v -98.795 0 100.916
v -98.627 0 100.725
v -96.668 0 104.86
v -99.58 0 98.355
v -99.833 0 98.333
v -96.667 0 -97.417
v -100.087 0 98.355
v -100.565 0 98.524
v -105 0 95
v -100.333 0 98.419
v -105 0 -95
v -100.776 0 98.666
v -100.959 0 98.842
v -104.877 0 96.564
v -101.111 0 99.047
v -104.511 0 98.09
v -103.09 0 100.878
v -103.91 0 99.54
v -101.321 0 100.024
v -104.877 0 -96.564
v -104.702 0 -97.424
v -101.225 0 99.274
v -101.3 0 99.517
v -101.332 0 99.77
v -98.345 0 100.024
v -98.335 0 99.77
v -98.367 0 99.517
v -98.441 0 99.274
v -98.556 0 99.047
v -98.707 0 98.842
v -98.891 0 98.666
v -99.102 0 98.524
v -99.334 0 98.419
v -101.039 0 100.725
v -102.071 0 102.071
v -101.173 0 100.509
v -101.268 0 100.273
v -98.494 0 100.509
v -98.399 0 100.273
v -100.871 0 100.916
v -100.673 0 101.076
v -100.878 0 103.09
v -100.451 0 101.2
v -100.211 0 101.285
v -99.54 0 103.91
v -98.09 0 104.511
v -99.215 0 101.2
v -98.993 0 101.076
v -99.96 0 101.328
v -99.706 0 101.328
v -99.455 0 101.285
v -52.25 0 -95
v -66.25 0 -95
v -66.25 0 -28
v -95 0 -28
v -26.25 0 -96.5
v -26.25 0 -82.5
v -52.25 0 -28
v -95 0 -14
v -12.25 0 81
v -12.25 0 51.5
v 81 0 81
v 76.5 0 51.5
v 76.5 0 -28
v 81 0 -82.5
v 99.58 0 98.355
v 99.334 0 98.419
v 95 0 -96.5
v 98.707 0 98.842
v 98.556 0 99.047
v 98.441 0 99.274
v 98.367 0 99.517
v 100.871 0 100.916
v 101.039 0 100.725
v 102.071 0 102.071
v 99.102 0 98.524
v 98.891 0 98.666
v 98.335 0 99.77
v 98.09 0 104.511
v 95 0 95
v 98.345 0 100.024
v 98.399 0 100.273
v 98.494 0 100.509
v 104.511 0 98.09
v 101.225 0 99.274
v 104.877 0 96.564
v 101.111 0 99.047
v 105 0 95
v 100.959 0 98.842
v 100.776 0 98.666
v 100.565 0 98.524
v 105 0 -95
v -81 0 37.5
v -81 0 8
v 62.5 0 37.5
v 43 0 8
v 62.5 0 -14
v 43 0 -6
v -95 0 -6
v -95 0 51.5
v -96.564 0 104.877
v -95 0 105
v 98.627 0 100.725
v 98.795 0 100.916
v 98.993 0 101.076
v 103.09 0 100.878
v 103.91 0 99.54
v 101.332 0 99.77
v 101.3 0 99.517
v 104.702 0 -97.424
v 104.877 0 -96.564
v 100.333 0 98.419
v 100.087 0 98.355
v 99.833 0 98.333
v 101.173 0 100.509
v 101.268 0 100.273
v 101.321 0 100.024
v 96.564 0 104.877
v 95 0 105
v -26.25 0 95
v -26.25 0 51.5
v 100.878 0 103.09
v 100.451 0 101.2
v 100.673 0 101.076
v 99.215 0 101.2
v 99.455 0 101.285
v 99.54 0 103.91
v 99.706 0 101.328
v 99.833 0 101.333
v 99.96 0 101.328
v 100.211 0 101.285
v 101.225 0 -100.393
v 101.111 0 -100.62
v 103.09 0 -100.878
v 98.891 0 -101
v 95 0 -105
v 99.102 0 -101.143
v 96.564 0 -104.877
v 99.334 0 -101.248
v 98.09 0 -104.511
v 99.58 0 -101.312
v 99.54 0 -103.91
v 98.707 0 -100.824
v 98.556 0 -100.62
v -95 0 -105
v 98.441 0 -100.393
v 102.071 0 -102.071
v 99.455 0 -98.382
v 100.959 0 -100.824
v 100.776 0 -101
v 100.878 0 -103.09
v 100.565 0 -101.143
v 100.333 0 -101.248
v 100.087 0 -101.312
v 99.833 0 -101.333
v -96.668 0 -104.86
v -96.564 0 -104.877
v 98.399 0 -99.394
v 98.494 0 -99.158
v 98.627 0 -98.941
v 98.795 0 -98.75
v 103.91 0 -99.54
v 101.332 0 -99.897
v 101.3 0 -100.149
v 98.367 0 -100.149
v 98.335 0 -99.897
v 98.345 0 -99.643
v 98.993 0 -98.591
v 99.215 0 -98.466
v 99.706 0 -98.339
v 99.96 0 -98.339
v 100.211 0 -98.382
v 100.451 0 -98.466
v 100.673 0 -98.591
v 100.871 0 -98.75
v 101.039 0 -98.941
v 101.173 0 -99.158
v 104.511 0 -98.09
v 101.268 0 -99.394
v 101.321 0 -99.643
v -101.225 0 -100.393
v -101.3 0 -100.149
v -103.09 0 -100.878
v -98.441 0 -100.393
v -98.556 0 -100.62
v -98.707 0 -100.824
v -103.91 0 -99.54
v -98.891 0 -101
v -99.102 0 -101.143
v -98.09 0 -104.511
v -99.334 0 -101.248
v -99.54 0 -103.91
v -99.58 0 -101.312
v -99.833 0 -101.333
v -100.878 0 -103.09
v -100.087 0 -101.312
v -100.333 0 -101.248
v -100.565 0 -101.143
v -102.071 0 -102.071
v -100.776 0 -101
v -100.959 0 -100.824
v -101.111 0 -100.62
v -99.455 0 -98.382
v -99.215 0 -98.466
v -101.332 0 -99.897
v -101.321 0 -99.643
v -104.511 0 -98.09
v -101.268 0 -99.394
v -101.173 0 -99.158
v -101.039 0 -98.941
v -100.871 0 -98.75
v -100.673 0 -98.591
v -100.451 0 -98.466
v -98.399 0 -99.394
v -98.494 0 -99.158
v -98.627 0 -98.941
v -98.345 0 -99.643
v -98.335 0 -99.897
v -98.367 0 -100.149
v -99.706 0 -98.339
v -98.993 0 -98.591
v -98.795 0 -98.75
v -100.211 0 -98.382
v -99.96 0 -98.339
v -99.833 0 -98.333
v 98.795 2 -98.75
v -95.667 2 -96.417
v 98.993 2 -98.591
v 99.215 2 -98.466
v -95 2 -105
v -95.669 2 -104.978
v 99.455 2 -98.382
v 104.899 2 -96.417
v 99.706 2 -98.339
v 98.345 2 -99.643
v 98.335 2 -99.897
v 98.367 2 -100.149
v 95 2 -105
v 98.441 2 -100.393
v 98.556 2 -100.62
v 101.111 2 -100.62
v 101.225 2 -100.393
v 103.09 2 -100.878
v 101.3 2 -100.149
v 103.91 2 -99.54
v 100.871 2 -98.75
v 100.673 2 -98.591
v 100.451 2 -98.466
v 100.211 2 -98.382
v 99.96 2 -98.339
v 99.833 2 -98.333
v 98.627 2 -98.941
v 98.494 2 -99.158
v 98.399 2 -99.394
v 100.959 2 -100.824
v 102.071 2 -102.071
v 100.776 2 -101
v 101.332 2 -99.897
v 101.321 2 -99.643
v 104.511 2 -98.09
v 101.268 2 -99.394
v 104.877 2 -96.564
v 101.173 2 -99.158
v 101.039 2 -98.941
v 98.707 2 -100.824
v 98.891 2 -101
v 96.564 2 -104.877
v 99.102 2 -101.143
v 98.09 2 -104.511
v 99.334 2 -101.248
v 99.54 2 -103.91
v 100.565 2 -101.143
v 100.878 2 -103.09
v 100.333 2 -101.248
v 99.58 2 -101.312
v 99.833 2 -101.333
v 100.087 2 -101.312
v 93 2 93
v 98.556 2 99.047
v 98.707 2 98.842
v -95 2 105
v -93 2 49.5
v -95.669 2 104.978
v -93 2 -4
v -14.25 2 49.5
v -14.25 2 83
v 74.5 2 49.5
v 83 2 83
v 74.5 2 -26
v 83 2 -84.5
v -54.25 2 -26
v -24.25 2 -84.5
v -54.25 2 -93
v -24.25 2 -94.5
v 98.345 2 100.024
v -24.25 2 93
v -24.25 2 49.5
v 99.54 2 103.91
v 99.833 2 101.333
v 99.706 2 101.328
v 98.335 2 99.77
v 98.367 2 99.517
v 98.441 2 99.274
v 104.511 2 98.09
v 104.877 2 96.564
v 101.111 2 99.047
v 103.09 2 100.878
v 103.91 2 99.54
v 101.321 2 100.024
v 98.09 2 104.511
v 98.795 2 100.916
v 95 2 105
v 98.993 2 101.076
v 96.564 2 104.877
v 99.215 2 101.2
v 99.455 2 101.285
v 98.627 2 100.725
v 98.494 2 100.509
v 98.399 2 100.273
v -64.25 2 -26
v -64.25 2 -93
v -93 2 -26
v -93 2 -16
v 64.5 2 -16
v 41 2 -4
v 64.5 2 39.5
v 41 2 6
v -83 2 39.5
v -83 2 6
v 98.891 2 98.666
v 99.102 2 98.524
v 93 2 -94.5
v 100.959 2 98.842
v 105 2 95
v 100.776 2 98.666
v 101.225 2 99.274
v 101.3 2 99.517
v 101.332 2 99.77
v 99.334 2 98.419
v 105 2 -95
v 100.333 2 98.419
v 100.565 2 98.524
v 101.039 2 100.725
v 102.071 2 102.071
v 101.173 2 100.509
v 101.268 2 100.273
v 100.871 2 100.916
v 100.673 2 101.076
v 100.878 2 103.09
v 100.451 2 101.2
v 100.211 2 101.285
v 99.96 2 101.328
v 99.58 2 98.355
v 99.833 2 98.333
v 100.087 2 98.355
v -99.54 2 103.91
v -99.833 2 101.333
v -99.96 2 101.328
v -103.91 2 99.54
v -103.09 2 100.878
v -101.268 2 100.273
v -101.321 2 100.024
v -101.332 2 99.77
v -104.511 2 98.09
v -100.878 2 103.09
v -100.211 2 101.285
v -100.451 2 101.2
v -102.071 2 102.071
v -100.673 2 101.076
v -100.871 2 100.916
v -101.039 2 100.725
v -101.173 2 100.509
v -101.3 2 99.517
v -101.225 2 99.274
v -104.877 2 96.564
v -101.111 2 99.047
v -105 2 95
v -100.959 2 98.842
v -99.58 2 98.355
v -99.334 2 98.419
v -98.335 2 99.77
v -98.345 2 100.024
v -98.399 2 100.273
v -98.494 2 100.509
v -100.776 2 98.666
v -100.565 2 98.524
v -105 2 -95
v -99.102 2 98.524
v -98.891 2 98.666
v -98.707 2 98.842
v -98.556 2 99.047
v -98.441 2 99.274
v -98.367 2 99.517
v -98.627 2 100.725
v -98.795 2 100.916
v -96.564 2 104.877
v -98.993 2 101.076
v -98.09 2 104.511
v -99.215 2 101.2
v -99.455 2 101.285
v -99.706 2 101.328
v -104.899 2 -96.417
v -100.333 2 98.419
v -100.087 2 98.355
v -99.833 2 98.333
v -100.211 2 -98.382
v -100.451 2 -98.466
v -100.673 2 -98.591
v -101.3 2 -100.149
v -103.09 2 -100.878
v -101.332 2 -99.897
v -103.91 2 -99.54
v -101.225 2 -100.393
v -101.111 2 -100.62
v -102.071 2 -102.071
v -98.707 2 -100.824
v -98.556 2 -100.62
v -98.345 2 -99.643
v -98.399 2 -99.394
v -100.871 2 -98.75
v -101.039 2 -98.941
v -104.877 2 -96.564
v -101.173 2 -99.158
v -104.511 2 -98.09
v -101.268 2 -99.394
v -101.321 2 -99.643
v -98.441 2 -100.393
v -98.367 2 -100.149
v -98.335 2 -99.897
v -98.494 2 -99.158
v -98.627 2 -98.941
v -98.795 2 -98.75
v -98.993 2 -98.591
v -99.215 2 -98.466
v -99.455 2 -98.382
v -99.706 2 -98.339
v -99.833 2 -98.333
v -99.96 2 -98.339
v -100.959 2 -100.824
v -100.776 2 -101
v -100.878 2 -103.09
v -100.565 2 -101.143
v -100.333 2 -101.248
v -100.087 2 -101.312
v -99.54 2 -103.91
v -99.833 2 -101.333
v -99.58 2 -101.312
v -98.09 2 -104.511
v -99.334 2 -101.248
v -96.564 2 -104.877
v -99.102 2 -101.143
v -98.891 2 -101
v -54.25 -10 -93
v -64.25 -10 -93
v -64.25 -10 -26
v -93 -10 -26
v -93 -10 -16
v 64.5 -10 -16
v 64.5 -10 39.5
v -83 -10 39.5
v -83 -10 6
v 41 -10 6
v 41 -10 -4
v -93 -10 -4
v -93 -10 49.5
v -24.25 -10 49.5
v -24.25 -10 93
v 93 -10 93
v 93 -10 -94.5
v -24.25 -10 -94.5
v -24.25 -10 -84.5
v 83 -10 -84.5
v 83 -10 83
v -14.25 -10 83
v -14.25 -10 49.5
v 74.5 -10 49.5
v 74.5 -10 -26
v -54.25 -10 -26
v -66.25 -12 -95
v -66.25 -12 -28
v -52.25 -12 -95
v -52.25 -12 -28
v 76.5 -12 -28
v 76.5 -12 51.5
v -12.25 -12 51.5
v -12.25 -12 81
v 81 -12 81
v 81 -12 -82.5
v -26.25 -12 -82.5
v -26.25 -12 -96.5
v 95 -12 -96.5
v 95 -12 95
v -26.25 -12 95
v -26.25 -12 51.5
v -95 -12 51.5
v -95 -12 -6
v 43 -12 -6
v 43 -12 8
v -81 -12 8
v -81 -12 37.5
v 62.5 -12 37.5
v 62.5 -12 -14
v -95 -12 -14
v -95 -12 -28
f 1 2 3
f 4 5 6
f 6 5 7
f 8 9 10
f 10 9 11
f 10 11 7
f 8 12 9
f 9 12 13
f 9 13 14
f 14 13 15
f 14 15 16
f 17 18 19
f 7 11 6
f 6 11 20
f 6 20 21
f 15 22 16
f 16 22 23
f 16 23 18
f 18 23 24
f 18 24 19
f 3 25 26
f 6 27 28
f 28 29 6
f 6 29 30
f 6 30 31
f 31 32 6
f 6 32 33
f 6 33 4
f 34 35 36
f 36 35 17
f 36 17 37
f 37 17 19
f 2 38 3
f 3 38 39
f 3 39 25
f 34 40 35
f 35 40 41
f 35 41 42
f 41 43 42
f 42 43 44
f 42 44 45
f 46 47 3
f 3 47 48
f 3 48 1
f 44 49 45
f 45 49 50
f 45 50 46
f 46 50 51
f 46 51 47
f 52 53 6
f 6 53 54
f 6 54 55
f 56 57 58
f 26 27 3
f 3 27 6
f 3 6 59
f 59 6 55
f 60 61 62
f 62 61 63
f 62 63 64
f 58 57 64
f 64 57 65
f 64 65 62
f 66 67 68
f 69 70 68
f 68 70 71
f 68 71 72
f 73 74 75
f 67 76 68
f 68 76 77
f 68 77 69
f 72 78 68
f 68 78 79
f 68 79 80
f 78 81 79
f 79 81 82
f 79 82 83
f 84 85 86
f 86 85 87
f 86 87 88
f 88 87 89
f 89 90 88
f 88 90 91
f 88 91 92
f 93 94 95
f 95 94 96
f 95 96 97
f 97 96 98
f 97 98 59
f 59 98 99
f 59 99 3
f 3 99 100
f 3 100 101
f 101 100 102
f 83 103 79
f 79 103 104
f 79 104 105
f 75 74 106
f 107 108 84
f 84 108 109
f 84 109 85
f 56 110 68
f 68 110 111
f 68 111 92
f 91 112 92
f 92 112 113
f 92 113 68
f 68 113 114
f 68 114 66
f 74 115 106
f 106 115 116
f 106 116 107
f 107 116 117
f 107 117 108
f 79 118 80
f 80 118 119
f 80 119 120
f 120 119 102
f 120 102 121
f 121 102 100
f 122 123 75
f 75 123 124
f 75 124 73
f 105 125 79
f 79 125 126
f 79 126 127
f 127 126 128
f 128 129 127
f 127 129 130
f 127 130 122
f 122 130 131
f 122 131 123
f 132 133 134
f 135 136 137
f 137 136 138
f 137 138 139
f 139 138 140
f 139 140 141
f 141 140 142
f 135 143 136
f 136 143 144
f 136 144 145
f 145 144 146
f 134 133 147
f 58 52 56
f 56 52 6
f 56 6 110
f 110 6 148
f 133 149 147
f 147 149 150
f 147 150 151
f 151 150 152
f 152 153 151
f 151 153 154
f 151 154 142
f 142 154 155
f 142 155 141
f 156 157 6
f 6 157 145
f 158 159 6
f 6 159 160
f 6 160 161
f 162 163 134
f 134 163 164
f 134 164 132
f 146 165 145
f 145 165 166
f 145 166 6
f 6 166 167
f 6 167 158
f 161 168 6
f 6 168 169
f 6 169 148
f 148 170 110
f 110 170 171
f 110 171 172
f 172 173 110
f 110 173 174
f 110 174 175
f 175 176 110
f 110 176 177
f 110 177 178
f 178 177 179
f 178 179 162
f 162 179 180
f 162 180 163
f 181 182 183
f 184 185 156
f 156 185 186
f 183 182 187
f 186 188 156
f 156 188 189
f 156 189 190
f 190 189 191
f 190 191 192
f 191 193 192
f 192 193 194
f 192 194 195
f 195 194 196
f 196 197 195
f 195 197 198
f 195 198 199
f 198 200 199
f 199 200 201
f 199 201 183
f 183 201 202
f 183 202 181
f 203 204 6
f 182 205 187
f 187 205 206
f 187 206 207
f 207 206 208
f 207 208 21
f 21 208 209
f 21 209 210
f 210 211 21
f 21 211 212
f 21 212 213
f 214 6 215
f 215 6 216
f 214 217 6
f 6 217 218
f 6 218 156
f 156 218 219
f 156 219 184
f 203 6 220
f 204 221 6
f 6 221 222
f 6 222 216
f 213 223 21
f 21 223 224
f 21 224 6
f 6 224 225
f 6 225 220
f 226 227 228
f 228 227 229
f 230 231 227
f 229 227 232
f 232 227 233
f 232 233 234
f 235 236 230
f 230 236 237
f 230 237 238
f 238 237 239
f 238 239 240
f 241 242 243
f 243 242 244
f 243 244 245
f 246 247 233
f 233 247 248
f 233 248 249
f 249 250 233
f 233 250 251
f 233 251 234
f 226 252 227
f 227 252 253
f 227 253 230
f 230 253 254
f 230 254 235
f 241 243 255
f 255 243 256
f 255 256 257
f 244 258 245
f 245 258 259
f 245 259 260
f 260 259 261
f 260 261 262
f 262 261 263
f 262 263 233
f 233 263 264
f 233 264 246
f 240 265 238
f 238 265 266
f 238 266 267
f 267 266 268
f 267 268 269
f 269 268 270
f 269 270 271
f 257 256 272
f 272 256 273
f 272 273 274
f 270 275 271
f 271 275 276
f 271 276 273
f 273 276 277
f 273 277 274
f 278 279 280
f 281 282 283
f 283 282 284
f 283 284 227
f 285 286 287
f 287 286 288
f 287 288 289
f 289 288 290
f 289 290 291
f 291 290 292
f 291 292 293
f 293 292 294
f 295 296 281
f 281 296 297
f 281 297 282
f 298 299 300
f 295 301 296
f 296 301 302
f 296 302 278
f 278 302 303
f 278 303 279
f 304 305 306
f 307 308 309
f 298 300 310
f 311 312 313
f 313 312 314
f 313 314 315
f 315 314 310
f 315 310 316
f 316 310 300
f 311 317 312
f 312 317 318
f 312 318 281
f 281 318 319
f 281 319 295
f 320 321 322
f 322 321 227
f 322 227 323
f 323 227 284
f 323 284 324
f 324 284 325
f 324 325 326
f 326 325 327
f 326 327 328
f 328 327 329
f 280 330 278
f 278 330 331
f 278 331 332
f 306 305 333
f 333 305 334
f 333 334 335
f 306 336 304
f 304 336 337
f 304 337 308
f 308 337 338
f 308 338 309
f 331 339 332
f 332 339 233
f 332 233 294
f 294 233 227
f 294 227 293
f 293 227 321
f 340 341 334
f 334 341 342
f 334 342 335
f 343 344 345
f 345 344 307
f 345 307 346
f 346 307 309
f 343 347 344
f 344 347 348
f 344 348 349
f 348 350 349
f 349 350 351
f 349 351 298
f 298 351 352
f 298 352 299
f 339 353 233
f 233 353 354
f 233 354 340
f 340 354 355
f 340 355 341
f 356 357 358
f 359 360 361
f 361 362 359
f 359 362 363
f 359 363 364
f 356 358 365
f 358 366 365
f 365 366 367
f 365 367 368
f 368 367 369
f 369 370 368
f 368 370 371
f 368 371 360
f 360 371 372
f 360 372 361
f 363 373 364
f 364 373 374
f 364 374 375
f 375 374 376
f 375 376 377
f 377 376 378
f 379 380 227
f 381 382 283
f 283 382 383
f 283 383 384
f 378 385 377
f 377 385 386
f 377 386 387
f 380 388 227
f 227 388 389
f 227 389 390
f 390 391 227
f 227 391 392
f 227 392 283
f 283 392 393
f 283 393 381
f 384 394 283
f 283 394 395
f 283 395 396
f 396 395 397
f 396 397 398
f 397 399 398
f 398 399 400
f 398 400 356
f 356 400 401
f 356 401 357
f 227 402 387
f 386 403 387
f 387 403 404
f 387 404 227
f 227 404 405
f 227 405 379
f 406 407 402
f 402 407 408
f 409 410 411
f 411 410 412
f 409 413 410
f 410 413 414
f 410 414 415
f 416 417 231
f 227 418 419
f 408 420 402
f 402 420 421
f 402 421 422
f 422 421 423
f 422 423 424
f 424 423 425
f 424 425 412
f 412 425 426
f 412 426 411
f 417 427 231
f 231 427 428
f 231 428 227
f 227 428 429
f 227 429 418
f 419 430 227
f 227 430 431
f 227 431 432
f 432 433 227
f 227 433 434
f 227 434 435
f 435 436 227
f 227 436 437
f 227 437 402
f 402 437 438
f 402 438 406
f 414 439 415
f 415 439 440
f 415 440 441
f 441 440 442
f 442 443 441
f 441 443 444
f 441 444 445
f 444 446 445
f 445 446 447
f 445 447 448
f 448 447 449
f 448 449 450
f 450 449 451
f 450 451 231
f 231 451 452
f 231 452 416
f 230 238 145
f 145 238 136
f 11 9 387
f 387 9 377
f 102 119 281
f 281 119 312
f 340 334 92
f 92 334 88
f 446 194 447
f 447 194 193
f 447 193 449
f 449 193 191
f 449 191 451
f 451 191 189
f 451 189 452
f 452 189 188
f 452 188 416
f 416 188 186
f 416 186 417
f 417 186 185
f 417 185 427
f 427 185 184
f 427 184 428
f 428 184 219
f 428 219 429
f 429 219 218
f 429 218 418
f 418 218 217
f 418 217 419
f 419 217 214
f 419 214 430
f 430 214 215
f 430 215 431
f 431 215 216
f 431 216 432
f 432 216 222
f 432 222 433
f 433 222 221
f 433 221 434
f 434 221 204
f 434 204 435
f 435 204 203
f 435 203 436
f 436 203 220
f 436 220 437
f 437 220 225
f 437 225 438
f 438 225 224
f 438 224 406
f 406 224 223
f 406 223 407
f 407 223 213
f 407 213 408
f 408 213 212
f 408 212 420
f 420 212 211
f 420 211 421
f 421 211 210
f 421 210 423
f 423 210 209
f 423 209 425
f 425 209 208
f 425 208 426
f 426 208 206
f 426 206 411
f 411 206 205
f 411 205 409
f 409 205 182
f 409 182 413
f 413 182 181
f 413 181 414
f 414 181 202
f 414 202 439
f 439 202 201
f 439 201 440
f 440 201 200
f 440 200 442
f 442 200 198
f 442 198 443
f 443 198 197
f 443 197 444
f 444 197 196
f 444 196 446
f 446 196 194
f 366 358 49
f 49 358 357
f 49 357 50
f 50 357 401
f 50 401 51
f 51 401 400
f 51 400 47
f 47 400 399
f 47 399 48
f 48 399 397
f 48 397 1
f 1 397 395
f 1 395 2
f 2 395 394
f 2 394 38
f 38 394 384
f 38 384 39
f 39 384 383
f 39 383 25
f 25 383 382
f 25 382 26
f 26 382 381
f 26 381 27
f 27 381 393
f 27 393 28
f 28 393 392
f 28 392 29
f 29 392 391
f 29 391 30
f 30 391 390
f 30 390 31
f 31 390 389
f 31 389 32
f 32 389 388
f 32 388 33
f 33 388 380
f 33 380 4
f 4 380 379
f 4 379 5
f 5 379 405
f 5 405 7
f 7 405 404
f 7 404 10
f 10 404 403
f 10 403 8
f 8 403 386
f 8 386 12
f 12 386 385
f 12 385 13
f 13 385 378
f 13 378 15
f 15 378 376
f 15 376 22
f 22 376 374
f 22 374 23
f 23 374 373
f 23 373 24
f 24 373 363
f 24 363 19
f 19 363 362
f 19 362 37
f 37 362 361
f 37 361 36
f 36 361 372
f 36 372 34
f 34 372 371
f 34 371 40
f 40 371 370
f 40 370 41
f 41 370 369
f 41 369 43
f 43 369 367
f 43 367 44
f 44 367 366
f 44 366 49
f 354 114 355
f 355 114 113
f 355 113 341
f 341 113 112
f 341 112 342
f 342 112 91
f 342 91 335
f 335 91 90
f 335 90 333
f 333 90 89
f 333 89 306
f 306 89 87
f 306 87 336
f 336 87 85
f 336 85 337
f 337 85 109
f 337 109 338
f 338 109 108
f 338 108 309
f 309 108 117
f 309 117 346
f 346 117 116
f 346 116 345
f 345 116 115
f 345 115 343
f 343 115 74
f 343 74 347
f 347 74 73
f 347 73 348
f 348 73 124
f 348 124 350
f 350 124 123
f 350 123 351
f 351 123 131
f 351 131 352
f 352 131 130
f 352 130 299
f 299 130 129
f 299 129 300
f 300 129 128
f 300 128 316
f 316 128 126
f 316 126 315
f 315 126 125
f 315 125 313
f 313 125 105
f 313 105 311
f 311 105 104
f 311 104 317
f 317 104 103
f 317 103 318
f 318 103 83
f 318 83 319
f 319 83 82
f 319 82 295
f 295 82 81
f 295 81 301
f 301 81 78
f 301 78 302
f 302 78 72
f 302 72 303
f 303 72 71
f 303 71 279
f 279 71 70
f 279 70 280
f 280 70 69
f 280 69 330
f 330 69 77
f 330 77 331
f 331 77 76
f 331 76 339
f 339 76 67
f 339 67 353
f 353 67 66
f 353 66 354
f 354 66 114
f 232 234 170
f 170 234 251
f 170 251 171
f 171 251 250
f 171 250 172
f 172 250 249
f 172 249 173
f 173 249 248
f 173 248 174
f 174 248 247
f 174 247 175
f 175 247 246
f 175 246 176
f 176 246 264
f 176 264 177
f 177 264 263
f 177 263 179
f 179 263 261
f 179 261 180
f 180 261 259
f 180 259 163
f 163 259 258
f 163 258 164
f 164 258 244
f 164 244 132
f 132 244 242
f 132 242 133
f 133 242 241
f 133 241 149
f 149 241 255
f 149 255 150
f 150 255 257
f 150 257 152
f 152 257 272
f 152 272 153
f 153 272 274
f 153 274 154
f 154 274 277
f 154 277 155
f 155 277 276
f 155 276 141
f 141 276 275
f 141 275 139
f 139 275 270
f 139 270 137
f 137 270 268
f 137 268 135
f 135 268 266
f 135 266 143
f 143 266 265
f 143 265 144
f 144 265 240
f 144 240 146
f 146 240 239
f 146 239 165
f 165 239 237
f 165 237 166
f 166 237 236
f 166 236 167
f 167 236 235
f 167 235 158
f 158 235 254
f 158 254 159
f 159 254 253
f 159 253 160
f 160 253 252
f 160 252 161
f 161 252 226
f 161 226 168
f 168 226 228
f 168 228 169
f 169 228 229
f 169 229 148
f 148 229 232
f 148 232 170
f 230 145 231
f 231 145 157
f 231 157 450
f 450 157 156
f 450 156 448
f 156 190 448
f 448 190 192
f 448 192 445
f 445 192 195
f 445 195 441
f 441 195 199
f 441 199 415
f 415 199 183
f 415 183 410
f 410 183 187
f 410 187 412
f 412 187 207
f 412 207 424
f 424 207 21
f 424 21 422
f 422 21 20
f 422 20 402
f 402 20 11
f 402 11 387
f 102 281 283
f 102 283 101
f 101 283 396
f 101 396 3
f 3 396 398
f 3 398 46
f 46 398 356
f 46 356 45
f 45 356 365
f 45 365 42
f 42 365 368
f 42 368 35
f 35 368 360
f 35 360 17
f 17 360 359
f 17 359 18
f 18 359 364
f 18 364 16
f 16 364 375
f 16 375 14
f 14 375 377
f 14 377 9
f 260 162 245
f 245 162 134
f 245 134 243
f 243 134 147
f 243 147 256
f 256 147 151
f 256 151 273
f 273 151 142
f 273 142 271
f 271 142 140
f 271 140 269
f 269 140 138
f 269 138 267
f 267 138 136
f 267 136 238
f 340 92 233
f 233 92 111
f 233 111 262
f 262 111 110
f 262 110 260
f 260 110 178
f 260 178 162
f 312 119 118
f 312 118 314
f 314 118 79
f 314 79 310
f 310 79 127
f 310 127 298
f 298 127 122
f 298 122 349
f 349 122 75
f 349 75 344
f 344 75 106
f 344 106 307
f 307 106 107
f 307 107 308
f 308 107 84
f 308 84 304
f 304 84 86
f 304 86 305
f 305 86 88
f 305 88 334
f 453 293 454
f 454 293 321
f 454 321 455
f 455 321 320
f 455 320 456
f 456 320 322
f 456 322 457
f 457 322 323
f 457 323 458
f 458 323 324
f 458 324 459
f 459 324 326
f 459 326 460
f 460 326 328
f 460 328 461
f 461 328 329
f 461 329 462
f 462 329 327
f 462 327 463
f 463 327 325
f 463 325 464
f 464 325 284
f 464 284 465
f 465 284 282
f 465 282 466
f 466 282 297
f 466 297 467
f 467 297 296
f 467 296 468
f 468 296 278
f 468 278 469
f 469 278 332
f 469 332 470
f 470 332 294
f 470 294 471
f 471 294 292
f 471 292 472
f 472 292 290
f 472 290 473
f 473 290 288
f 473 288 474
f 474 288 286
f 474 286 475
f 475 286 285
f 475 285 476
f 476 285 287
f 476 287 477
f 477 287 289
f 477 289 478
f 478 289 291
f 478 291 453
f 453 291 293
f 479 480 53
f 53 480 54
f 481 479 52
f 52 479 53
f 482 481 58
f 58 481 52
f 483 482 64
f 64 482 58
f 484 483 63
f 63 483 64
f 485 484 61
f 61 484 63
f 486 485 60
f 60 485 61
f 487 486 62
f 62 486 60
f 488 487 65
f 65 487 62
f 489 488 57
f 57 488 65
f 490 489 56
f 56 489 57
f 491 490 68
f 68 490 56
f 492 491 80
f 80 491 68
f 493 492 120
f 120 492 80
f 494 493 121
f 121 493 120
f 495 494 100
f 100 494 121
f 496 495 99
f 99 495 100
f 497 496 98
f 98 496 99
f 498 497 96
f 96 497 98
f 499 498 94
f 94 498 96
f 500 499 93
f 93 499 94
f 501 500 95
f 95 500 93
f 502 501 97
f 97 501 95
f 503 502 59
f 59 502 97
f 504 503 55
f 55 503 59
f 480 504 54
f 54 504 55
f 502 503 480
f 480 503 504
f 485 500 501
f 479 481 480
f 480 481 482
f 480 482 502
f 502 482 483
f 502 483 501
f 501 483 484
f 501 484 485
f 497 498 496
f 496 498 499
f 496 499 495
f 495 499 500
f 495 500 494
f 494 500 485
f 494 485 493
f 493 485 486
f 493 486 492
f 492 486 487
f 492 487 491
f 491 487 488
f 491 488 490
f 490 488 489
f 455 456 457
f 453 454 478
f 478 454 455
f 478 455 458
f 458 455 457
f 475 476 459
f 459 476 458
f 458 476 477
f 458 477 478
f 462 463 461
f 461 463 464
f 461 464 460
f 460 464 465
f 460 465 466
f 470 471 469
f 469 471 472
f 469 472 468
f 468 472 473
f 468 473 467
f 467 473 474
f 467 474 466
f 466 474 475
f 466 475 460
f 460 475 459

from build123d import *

# Parameters (mm, degrees)
SKETCH1_W           = 210
SKETCH1_H           = 210
MAINEXTRUDE_DEPTH   = 2
SKETCH1_6_R         = 1.5
SCREWHOLES_DEPTH    = 2
ROUNDEDCORNERS_R    = 10
TRENCH_DEPTH        = 12
BOSS_EXTRUDE3_DEPTH = 10
BOSS_EXTRUDE4_DEPTH = 2


with BuildPart() as part:
    # Sketch1 → MainExtrude (new body)
    with BuildSketch(Plane(origin=(0, 0, 0), x_dir=(1, 0, 0), z_dir=(0, 1, 0))):
        Rectangle(SKETCH1_W, SKETCH1_H)
    extrude(amount=MAINEXTRUDE_DEPTH)

    # Sketch1<6> → ScrewHoles (cut)
    with BuildSketch(Plane(origin=(0, 0, 0), x_dir=(1, 0, 0), z_dir=(0, 1, 0))):
        with Locations((-99.833273811, 99.833273811)):
            Circle(SKETCH1_6_R)
        with Locations((-99.833273811, -99.833273811)):
            Circle(SKETCH1_6_R)
        with Locations((99.833273811, -99.833273811)):
            Circle(SKETCH1_6_R)
        with Locations((99.833273811, 99.833273811)):
            Circle(SKETCH1_6_R)
    extrude(amount=SCREWHOLES_DEPTH, mode=Mode.SUBTRACT)

    # RoundedCorners
    roundedcorners_edges = [part.edges().sort_by_distance(p)[0] for p in [
        (-105, 1, -105),
        (-105, 1, 105),
        (105, 1, 105),
        (105, 1, -105),
    ]]
    fillet(roundedcorners_edges, radius=ROUNDEDCORNERS_R)

    # Sketch3 → Trench (cut)
    with BuildSketch(Plane(origin=(0, 0, 0), x_dir=(1, 0, 0), z_dir=(0, 1, 0))):
        Polygon((-64.25, 93), (-64.25, 26), (-93, 26), (-93, 16), (64.5, 16), (64.5, -39.5), (-83, -39.5), (-83, -6), (41, -6), (41, 4), (-93, 4), (-93, -49.5), (-24.25, -49.5), (-24.25, -93), (93, -93), (93, 94.5), (-24.25, 94.5), (-24.25, 84.5), (83, 84.5), (83, -83), (-14.25, -83), (-14.25, -49.5), (74.5, -49.5), (74.5, 26), (-54.25, 26), (-54.25, 93), align=None)
    extrude(amount=TRENCH_DEPTH, mode=Mode.SUBTRACT)

    # Sketch7 → Boss-Extrude3 (add)
    with BuildSketch(Plane.XZ):
        Polygon((-66.25, -95), (-52.25, -95), (-52.25, -28), (76.5, -28), (76.5, 51.5), (-12.25, 51.5), (-12.25, 81), (81, 81), (81, -82.5), (-26.25, -82.5), (-26.25, -96.5), (95, -96.5), (95, 95), (-26.25, 95), (-26.25, 51.5), (-95, 51.5), (-95, -6), (43, -6), (43, 8), (-81, 8), (-81, 37.5), (62.5, 37.5), (62.5, -14), (-95, -14), (-95, -28), (-66.25, -28), align=None)
        Polygon((-64.25, -93), (-54.25, -93), (-54.25, -26), (74.5, -26), (74.5, 49.5), (-14.25, 49.5), (-14.25, 83), (83, 83), (83, -84.5), (-24.25, -84.5), (-24.25, -94.5), (93, -94.5), (93, 93), (-24.25, 93), (-24.25, 49.5), (-93, 49.5), (-93, -4), (41, -4), (41, 6), (-83, 6), (-83, 39.5), (64.5, 39.5), (64.5, -16), (-93, -16), (-93, -26), (-64.25, -26), align=None, mode=Mode.SUBTRACT)
    extrude(amount=BOSS_EXTRUDE3_DEPTH)

    # Sketch8 → Boss-Extrude4 (add)
    with BuildSketch(Plane.XZ.offset(10)):
        Polygon((-66.25, -28), (-66.25, -95), (-52.25, -95), (-52.25, -28), (76.5, -28), (76.5, 51.5), (-12.25, 51.5), (-12.25, 81), (81, 81), (81, -82.5), (-26.25, -82.5), (-26.25, -96.5), (95, -96.5), (95, 95), (-26.25, 95), (-26.25, 51.5), (-95, 51.5), (-95, -6), (43, -6), (43, 8), (-81, 8), (-81, 37.5), (62.5, 37.5), (62.5, -14), (-95, -14), (-95, -28), align=None)
    extrude(amount=BOSS_EXTRUDE4_DEPTH)


solid = part.part
